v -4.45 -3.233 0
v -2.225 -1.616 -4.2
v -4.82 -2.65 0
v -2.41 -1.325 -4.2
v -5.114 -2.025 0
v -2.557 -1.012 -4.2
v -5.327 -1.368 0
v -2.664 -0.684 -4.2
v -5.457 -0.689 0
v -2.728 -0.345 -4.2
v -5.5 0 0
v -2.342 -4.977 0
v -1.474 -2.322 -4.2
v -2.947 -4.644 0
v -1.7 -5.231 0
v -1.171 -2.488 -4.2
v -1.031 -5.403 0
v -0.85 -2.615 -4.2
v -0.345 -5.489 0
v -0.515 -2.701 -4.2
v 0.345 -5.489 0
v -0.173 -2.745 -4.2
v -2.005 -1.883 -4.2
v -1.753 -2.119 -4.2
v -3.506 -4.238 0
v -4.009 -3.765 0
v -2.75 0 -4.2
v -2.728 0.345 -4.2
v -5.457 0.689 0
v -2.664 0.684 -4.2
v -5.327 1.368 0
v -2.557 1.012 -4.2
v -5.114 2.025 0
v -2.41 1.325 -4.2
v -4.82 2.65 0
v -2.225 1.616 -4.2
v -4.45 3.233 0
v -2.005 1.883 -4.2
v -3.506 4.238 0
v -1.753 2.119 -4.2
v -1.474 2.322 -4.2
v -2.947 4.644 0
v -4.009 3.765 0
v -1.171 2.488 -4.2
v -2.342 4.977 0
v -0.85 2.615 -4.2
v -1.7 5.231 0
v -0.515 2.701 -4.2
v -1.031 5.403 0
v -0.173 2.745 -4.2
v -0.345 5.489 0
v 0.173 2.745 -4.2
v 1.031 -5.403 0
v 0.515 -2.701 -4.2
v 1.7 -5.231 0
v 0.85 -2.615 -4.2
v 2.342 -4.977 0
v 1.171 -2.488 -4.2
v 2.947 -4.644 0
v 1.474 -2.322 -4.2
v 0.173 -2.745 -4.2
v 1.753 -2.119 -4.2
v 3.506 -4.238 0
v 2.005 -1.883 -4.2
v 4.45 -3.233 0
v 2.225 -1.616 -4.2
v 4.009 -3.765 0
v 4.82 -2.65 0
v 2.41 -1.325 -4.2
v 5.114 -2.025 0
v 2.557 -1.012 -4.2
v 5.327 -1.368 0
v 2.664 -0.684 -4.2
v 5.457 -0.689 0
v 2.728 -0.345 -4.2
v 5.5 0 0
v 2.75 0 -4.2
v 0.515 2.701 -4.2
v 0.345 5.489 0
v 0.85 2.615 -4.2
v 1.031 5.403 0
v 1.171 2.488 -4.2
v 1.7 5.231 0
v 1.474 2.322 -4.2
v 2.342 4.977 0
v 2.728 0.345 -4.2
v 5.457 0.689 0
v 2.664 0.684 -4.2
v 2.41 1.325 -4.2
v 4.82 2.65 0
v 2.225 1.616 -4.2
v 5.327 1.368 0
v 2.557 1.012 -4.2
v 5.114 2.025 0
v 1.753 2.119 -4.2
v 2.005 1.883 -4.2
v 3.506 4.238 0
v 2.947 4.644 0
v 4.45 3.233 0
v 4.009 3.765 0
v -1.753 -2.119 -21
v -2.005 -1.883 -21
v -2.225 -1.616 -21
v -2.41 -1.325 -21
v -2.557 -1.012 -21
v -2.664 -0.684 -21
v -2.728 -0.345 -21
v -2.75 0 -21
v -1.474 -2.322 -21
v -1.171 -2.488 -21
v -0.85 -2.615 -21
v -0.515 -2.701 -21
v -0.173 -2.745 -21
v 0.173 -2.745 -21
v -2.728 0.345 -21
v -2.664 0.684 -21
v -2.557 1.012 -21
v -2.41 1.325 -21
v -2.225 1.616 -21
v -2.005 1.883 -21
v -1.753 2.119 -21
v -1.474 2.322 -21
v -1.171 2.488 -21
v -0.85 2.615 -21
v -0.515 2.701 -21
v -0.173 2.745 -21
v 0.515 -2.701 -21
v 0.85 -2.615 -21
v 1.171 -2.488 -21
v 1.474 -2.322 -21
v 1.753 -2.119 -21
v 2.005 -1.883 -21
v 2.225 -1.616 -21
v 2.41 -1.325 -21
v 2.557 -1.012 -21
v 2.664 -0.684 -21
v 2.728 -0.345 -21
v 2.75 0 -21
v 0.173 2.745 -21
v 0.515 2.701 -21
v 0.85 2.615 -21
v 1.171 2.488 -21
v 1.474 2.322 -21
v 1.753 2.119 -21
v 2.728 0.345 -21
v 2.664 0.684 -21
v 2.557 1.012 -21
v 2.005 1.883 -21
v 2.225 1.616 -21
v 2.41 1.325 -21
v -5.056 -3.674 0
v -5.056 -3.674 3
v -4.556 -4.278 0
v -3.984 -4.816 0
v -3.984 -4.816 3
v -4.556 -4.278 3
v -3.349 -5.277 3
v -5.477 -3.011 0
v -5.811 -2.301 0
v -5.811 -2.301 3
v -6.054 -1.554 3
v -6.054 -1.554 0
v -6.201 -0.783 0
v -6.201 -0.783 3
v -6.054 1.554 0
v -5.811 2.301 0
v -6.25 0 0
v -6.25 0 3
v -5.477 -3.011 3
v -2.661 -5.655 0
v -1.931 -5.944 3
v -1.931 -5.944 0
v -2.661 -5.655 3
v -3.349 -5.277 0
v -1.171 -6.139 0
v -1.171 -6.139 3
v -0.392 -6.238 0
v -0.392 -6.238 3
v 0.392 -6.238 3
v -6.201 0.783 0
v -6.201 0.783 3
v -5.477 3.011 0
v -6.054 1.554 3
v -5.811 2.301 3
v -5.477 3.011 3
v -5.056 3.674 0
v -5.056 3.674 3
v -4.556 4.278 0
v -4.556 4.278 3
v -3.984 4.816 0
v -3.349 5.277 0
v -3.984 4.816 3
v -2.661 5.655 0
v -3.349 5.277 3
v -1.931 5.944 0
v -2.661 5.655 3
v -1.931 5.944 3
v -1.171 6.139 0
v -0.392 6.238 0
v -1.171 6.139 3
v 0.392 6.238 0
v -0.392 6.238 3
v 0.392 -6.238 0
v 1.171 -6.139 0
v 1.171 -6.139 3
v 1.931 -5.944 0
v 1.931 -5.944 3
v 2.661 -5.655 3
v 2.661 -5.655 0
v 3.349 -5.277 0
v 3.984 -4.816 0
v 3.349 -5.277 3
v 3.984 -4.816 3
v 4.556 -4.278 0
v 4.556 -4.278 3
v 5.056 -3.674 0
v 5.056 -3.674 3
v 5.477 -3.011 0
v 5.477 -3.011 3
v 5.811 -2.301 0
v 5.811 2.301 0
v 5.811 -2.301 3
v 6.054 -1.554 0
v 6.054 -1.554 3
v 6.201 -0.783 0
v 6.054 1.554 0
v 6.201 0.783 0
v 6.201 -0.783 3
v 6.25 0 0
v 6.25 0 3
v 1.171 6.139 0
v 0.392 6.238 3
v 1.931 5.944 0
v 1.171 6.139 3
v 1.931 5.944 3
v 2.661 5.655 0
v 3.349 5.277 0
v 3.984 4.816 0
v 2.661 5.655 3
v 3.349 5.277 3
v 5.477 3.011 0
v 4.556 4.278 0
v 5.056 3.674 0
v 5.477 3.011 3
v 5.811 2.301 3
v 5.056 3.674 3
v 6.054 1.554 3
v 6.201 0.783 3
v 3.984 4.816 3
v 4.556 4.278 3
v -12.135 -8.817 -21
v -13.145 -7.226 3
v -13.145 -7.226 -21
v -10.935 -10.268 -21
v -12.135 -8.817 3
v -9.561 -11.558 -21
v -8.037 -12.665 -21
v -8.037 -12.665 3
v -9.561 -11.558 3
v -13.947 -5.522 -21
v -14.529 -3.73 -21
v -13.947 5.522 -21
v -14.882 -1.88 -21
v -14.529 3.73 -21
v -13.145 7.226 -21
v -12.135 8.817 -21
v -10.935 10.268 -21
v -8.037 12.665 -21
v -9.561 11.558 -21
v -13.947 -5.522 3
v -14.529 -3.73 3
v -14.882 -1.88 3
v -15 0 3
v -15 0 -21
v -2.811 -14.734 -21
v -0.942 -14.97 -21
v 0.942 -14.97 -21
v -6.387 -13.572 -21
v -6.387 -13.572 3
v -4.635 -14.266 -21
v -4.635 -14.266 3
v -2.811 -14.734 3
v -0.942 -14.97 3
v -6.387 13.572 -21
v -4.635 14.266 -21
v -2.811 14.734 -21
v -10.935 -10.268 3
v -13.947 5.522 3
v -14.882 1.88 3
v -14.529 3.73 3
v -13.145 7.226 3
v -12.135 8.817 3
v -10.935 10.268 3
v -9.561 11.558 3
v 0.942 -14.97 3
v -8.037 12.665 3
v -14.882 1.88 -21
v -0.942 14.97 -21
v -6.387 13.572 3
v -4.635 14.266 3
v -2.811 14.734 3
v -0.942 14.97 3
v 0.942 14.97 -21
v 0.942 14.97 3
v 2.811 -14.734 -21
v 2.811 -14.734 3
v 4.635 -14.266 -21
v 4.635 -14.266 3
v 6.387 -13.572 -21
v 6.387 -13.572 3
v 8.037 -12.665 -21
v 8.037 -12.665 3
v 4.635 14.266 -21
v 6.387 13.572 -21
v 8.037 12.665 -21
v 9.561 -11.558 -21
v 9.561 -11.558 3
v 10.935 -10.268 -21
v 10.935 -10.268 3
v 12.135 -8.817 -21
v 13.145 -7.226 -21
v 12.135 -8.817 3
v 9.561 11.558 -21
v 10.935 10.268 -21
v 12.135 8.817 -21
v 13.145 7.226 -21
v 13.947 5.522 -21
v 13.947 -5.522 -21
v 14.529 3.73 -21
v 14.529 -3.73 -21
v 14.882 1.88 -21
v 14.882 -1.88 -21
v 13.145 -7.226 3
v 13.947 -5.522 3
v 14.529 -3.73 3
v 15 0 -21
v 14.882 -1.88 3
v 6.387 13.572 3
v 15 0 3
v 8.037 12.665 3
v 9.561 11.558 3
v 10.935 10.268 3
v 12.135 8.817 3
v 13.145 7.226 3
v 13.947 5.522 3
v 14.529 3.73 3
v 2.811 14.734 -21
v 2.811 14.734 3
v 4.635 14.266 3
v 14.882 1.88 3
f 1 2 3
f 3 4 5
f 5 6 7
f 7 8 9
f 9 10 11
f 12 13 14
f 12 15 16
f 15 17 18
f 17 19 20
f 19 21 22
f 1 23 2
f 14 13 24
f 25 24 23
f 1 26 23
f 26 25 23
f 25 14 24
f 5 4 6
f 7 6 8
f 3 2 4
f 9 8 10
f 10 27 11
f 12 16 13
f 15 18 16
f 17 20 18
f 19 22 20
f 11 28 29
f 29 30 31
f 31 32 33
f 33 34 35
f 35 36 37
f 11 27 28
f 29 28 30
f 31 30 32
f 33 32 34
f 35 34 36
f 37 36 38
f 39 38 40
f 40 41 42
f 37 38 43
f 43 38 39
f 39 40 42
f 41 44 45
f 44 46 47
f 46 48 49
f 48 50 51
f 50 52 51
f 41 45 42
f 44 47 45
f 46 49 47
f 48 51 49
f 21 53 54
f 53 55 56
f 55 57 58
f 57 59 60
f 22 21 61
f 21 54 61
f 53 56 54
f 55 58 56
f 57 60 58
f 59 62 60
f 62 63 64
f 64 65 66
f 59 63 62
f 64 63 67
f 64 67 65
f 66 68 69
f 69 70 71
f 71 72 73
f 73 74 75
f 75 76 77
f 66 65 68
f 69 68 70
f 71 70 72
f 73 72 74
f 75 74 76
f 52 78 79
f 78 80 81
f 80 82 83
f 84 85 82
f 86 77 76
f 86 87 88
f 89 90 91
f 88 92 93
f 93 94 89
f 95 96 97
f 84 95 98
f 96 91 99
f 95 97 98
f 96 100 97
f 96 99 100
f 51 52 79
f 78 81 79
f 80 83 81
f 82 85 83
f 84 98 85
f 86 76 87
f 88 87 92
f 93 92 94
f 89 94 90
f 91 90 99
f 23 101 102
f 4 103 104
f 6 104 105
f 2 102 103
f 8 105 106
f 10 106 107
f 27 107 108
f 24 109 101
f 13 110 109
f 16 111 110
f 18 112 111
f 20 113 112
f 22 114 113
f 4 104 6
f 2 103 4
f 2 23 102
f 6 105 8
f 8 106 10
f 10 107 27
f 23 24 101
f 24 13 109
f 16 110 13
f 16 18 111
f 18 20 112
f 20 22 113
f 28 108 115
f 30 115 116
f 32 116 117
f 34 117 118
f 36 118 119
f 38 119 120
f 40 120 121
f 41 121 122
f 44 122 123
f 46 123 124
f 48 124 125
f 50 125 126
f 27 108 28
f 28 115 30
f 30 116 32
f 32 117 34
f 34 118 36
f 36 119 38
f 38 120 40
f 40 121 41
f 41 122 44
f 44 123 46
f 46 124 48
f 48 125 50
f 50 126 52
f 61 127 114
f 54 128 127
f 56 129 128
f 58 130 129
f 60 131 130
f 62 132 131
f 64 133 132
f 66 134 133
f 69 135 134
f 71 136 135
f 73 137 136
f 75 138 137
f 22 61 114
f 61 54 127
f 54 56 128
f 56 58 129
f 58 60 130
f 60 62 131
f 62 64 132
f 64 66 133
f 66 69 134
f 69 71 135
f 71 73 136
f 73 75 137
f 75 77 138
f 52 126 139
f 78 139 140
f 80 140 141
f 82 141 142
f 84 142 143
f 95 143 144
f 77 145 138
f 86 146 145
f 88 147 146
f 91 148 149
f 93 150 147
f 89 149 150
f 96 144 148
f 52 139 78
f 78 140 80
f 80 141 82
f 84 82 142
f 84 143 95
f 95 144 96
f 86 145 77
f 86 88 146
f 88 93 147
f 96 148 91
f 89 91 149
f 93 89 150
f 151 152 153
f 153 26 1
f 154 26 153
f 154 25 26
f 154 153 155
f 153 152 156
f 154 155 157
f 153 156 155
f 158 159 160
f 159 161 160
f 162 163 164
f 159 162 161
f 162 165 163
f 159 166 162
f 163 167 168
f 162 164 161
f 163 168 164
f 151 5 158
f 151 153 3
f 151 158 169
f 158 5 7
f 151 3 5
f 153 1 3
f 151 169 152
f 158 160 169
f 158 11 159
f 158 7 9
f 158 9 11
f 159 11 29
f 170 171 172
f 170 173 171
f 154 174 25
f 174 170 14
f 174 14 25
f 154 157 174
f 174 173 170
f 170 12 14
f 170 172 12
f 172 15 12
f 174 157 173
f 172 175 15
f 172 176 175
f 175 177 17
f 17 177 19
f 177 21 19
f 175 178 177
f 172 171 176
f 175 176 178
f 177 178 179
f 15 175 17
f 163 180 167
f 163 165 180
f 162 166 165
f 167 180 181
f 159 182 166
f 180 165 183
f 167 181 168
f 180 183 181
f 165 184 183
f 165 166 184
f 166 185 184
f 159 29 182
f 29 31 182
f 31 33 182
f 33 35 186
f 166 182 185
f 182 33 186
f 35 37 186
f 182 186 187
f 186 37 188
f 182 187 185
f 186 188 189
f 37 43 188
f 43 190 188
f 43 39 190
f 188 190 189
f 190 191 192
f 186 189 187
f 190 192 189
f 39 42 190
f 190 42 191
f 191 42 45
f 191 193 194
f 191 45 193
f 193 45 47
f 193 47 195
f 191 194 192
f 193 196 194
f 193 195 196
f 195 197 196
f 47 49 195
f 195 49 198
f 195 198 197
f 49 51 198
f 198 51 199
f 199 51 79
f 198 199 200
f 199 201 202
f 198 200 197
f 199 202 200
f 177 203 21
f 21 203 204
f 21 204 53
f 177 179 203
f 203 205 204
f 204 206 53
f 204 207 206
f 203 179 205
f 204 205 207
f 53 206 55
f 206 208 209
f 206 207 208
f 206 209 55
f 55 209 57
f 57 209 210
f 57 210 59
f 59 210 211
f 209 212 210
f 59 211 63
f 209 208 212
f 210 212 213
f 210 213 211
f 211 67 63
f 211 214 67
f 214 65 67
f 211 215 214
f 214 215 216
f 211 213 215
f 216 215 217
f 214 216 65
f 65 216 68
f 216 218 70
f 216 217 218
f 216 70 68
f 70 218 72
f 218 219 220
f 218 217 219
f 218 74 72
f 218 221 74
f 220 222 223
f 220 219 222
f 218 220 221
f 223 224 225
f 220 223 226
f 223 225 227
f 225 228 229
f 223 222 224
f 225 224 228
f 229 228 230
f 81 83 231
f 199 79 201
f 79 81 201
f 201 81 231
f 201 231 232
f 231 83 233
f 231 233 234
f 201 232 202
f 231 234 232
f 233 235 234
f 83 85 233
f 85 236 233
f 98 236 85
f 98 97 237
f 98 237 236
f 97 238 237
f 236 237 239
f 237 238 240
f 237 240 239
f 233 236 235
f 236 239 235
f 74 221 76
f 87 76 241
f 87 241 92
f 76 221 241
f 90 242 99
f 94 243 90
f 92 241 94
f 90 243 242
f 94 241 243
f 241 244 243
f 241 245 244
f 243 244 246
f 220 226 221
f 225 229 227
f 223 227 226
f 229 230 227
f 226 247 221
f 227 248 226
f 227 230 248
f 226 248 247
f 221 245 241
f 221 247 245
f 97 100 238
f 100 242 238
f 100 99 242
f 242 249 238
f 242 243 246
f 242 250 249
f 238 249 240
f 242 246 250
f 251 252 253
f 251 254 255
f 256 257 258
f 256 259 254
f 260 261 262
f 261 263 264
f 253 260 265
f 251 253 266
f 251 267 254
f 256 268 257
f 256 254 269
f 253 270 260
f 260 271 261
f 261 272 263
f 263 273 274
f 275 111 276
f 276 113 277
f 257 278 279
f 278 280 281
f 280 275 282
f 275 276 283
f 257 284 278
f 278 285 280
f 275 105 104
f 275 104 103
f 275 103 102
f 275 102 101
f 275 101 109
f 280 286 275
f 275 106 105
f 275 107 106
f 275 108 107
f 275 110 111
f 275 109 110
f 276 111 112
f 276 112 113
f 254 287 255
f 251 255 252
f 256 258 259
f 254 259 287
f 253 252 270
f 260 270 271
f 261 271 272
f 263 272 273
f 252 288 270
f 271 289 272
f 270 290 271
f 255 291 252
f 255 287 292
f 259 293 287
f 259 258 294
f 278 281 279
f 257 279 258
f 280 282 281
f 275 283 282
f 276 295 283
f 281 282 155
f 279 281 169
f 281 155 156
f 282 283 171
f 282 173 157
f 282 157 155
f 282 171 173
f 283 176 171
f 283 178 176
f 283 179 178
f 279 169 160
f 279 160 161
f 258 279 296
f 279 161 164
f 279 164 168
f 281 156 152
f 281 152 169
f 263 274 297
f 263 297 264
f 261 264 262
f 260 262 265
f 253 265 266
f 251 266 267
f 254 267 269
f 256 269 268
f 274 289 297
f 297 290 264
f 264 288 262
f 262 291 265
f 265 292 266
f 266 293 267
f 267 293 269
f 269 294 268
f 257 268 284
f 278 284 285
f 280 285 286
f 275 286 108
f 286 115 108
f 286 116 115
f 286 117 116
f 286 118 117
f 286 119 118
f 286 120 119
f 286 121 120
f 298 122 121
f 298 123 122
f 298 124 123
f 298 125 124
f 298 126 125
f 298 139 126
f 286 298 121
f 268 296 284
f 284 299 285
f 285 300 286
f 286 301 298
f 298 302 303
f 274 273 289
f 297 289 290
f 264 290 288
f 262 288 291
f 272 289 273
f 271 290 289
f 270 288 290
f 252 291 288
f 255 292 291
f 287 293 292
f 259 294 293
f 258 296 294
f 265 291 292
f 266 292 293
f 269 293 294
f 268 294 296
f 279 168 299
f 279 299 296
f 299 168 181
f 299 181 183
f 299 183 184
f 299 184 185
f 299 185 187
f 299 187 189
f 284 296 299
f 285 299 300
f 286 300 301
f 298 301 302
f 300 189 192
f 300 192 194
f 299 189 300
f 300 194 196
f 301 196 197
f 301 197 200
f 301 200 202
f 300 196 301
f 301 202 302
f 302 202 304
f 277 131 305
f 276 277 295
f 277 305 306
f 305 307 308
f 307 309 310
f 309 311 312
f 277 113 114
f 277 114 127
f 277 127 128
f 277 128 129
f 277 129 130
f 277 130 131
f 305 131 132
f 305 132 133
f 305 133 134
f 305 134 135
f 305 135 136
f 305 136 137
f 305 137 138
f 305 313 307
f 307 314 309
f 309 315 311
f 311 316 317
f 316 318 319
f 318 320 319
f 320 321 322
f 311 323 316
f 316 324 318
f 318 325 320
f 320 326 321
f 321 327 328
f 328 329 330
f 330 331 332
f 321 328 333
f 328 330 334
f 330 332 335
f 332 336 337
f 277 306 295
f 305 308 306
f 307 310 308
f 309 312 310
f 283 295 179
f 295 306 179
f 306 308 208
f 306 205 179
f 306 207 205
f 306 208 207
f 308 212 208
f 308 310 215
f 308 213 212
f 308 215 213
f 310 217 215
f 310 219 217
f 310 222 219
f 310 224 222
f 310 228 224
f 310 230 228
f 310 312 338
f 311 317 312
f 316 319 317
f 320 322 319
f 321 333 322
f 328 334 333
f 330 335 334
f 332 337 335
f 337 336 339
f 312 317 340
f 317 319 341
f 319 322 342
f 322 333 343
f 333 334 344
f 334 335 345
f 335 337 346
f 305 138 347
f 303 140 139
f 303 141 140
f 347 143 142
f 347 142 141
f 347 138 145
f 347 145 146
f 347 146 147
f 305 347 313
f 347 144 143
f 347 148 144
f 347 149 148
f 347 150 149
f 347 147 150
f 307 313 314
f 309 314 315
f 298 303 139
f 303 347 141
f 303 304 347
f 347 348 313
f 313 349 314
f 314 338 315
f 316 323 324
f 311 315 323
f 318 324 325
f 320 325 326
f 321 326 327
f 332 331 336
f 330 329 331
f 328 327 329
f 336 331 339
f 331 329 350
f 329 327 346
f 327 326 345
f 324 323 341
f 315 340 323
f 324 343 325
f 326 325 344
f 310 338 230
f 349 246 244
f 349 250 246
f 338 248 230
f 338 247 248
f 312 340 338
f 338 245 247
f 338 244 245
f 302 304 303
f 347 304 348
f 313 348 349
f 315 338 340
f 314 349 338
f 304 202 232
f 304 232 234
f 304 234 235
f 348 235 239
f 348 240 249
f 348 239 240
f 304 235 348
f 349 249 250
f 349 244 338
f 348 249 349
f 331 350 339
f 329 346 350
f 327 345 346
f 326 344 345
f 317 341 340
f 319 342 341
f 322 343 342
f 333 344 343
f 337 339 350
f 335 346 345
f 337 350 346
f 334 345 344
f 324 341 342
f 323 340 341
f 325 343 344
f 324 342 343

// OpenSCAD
$fn = 50;

difference() {
	union() {
		translate(v = [0, 0, -21.0]) {
			cylinder(h = 24, r = 15.0);
		}
	}
	union() {
		translate(v = [0, 0, 0]) {
			rotate(a = [0, 0, 0]) {
				difference() {
					union() {
						translate(v = [0, 0, -24.0]) {
							cylinder(h = 24, r = 2.25);
						}
						translate(v = [0, 0, -4.2]) {
							cylinder(h = 4.2, r1 = 2.75, r2 = 5.5);
						}
						translate(v = [0, 0, -24.0]) {
							cylinder(h = 24, r = 2.75);
						}
						translate(v = [0, 0, -24.0]) {
							cylinder(h = 24, r = 2.25);
						}
					}
					union();
				}
			}
		}
		#cylinder(h = 3, r = 6.25);
	}
}
